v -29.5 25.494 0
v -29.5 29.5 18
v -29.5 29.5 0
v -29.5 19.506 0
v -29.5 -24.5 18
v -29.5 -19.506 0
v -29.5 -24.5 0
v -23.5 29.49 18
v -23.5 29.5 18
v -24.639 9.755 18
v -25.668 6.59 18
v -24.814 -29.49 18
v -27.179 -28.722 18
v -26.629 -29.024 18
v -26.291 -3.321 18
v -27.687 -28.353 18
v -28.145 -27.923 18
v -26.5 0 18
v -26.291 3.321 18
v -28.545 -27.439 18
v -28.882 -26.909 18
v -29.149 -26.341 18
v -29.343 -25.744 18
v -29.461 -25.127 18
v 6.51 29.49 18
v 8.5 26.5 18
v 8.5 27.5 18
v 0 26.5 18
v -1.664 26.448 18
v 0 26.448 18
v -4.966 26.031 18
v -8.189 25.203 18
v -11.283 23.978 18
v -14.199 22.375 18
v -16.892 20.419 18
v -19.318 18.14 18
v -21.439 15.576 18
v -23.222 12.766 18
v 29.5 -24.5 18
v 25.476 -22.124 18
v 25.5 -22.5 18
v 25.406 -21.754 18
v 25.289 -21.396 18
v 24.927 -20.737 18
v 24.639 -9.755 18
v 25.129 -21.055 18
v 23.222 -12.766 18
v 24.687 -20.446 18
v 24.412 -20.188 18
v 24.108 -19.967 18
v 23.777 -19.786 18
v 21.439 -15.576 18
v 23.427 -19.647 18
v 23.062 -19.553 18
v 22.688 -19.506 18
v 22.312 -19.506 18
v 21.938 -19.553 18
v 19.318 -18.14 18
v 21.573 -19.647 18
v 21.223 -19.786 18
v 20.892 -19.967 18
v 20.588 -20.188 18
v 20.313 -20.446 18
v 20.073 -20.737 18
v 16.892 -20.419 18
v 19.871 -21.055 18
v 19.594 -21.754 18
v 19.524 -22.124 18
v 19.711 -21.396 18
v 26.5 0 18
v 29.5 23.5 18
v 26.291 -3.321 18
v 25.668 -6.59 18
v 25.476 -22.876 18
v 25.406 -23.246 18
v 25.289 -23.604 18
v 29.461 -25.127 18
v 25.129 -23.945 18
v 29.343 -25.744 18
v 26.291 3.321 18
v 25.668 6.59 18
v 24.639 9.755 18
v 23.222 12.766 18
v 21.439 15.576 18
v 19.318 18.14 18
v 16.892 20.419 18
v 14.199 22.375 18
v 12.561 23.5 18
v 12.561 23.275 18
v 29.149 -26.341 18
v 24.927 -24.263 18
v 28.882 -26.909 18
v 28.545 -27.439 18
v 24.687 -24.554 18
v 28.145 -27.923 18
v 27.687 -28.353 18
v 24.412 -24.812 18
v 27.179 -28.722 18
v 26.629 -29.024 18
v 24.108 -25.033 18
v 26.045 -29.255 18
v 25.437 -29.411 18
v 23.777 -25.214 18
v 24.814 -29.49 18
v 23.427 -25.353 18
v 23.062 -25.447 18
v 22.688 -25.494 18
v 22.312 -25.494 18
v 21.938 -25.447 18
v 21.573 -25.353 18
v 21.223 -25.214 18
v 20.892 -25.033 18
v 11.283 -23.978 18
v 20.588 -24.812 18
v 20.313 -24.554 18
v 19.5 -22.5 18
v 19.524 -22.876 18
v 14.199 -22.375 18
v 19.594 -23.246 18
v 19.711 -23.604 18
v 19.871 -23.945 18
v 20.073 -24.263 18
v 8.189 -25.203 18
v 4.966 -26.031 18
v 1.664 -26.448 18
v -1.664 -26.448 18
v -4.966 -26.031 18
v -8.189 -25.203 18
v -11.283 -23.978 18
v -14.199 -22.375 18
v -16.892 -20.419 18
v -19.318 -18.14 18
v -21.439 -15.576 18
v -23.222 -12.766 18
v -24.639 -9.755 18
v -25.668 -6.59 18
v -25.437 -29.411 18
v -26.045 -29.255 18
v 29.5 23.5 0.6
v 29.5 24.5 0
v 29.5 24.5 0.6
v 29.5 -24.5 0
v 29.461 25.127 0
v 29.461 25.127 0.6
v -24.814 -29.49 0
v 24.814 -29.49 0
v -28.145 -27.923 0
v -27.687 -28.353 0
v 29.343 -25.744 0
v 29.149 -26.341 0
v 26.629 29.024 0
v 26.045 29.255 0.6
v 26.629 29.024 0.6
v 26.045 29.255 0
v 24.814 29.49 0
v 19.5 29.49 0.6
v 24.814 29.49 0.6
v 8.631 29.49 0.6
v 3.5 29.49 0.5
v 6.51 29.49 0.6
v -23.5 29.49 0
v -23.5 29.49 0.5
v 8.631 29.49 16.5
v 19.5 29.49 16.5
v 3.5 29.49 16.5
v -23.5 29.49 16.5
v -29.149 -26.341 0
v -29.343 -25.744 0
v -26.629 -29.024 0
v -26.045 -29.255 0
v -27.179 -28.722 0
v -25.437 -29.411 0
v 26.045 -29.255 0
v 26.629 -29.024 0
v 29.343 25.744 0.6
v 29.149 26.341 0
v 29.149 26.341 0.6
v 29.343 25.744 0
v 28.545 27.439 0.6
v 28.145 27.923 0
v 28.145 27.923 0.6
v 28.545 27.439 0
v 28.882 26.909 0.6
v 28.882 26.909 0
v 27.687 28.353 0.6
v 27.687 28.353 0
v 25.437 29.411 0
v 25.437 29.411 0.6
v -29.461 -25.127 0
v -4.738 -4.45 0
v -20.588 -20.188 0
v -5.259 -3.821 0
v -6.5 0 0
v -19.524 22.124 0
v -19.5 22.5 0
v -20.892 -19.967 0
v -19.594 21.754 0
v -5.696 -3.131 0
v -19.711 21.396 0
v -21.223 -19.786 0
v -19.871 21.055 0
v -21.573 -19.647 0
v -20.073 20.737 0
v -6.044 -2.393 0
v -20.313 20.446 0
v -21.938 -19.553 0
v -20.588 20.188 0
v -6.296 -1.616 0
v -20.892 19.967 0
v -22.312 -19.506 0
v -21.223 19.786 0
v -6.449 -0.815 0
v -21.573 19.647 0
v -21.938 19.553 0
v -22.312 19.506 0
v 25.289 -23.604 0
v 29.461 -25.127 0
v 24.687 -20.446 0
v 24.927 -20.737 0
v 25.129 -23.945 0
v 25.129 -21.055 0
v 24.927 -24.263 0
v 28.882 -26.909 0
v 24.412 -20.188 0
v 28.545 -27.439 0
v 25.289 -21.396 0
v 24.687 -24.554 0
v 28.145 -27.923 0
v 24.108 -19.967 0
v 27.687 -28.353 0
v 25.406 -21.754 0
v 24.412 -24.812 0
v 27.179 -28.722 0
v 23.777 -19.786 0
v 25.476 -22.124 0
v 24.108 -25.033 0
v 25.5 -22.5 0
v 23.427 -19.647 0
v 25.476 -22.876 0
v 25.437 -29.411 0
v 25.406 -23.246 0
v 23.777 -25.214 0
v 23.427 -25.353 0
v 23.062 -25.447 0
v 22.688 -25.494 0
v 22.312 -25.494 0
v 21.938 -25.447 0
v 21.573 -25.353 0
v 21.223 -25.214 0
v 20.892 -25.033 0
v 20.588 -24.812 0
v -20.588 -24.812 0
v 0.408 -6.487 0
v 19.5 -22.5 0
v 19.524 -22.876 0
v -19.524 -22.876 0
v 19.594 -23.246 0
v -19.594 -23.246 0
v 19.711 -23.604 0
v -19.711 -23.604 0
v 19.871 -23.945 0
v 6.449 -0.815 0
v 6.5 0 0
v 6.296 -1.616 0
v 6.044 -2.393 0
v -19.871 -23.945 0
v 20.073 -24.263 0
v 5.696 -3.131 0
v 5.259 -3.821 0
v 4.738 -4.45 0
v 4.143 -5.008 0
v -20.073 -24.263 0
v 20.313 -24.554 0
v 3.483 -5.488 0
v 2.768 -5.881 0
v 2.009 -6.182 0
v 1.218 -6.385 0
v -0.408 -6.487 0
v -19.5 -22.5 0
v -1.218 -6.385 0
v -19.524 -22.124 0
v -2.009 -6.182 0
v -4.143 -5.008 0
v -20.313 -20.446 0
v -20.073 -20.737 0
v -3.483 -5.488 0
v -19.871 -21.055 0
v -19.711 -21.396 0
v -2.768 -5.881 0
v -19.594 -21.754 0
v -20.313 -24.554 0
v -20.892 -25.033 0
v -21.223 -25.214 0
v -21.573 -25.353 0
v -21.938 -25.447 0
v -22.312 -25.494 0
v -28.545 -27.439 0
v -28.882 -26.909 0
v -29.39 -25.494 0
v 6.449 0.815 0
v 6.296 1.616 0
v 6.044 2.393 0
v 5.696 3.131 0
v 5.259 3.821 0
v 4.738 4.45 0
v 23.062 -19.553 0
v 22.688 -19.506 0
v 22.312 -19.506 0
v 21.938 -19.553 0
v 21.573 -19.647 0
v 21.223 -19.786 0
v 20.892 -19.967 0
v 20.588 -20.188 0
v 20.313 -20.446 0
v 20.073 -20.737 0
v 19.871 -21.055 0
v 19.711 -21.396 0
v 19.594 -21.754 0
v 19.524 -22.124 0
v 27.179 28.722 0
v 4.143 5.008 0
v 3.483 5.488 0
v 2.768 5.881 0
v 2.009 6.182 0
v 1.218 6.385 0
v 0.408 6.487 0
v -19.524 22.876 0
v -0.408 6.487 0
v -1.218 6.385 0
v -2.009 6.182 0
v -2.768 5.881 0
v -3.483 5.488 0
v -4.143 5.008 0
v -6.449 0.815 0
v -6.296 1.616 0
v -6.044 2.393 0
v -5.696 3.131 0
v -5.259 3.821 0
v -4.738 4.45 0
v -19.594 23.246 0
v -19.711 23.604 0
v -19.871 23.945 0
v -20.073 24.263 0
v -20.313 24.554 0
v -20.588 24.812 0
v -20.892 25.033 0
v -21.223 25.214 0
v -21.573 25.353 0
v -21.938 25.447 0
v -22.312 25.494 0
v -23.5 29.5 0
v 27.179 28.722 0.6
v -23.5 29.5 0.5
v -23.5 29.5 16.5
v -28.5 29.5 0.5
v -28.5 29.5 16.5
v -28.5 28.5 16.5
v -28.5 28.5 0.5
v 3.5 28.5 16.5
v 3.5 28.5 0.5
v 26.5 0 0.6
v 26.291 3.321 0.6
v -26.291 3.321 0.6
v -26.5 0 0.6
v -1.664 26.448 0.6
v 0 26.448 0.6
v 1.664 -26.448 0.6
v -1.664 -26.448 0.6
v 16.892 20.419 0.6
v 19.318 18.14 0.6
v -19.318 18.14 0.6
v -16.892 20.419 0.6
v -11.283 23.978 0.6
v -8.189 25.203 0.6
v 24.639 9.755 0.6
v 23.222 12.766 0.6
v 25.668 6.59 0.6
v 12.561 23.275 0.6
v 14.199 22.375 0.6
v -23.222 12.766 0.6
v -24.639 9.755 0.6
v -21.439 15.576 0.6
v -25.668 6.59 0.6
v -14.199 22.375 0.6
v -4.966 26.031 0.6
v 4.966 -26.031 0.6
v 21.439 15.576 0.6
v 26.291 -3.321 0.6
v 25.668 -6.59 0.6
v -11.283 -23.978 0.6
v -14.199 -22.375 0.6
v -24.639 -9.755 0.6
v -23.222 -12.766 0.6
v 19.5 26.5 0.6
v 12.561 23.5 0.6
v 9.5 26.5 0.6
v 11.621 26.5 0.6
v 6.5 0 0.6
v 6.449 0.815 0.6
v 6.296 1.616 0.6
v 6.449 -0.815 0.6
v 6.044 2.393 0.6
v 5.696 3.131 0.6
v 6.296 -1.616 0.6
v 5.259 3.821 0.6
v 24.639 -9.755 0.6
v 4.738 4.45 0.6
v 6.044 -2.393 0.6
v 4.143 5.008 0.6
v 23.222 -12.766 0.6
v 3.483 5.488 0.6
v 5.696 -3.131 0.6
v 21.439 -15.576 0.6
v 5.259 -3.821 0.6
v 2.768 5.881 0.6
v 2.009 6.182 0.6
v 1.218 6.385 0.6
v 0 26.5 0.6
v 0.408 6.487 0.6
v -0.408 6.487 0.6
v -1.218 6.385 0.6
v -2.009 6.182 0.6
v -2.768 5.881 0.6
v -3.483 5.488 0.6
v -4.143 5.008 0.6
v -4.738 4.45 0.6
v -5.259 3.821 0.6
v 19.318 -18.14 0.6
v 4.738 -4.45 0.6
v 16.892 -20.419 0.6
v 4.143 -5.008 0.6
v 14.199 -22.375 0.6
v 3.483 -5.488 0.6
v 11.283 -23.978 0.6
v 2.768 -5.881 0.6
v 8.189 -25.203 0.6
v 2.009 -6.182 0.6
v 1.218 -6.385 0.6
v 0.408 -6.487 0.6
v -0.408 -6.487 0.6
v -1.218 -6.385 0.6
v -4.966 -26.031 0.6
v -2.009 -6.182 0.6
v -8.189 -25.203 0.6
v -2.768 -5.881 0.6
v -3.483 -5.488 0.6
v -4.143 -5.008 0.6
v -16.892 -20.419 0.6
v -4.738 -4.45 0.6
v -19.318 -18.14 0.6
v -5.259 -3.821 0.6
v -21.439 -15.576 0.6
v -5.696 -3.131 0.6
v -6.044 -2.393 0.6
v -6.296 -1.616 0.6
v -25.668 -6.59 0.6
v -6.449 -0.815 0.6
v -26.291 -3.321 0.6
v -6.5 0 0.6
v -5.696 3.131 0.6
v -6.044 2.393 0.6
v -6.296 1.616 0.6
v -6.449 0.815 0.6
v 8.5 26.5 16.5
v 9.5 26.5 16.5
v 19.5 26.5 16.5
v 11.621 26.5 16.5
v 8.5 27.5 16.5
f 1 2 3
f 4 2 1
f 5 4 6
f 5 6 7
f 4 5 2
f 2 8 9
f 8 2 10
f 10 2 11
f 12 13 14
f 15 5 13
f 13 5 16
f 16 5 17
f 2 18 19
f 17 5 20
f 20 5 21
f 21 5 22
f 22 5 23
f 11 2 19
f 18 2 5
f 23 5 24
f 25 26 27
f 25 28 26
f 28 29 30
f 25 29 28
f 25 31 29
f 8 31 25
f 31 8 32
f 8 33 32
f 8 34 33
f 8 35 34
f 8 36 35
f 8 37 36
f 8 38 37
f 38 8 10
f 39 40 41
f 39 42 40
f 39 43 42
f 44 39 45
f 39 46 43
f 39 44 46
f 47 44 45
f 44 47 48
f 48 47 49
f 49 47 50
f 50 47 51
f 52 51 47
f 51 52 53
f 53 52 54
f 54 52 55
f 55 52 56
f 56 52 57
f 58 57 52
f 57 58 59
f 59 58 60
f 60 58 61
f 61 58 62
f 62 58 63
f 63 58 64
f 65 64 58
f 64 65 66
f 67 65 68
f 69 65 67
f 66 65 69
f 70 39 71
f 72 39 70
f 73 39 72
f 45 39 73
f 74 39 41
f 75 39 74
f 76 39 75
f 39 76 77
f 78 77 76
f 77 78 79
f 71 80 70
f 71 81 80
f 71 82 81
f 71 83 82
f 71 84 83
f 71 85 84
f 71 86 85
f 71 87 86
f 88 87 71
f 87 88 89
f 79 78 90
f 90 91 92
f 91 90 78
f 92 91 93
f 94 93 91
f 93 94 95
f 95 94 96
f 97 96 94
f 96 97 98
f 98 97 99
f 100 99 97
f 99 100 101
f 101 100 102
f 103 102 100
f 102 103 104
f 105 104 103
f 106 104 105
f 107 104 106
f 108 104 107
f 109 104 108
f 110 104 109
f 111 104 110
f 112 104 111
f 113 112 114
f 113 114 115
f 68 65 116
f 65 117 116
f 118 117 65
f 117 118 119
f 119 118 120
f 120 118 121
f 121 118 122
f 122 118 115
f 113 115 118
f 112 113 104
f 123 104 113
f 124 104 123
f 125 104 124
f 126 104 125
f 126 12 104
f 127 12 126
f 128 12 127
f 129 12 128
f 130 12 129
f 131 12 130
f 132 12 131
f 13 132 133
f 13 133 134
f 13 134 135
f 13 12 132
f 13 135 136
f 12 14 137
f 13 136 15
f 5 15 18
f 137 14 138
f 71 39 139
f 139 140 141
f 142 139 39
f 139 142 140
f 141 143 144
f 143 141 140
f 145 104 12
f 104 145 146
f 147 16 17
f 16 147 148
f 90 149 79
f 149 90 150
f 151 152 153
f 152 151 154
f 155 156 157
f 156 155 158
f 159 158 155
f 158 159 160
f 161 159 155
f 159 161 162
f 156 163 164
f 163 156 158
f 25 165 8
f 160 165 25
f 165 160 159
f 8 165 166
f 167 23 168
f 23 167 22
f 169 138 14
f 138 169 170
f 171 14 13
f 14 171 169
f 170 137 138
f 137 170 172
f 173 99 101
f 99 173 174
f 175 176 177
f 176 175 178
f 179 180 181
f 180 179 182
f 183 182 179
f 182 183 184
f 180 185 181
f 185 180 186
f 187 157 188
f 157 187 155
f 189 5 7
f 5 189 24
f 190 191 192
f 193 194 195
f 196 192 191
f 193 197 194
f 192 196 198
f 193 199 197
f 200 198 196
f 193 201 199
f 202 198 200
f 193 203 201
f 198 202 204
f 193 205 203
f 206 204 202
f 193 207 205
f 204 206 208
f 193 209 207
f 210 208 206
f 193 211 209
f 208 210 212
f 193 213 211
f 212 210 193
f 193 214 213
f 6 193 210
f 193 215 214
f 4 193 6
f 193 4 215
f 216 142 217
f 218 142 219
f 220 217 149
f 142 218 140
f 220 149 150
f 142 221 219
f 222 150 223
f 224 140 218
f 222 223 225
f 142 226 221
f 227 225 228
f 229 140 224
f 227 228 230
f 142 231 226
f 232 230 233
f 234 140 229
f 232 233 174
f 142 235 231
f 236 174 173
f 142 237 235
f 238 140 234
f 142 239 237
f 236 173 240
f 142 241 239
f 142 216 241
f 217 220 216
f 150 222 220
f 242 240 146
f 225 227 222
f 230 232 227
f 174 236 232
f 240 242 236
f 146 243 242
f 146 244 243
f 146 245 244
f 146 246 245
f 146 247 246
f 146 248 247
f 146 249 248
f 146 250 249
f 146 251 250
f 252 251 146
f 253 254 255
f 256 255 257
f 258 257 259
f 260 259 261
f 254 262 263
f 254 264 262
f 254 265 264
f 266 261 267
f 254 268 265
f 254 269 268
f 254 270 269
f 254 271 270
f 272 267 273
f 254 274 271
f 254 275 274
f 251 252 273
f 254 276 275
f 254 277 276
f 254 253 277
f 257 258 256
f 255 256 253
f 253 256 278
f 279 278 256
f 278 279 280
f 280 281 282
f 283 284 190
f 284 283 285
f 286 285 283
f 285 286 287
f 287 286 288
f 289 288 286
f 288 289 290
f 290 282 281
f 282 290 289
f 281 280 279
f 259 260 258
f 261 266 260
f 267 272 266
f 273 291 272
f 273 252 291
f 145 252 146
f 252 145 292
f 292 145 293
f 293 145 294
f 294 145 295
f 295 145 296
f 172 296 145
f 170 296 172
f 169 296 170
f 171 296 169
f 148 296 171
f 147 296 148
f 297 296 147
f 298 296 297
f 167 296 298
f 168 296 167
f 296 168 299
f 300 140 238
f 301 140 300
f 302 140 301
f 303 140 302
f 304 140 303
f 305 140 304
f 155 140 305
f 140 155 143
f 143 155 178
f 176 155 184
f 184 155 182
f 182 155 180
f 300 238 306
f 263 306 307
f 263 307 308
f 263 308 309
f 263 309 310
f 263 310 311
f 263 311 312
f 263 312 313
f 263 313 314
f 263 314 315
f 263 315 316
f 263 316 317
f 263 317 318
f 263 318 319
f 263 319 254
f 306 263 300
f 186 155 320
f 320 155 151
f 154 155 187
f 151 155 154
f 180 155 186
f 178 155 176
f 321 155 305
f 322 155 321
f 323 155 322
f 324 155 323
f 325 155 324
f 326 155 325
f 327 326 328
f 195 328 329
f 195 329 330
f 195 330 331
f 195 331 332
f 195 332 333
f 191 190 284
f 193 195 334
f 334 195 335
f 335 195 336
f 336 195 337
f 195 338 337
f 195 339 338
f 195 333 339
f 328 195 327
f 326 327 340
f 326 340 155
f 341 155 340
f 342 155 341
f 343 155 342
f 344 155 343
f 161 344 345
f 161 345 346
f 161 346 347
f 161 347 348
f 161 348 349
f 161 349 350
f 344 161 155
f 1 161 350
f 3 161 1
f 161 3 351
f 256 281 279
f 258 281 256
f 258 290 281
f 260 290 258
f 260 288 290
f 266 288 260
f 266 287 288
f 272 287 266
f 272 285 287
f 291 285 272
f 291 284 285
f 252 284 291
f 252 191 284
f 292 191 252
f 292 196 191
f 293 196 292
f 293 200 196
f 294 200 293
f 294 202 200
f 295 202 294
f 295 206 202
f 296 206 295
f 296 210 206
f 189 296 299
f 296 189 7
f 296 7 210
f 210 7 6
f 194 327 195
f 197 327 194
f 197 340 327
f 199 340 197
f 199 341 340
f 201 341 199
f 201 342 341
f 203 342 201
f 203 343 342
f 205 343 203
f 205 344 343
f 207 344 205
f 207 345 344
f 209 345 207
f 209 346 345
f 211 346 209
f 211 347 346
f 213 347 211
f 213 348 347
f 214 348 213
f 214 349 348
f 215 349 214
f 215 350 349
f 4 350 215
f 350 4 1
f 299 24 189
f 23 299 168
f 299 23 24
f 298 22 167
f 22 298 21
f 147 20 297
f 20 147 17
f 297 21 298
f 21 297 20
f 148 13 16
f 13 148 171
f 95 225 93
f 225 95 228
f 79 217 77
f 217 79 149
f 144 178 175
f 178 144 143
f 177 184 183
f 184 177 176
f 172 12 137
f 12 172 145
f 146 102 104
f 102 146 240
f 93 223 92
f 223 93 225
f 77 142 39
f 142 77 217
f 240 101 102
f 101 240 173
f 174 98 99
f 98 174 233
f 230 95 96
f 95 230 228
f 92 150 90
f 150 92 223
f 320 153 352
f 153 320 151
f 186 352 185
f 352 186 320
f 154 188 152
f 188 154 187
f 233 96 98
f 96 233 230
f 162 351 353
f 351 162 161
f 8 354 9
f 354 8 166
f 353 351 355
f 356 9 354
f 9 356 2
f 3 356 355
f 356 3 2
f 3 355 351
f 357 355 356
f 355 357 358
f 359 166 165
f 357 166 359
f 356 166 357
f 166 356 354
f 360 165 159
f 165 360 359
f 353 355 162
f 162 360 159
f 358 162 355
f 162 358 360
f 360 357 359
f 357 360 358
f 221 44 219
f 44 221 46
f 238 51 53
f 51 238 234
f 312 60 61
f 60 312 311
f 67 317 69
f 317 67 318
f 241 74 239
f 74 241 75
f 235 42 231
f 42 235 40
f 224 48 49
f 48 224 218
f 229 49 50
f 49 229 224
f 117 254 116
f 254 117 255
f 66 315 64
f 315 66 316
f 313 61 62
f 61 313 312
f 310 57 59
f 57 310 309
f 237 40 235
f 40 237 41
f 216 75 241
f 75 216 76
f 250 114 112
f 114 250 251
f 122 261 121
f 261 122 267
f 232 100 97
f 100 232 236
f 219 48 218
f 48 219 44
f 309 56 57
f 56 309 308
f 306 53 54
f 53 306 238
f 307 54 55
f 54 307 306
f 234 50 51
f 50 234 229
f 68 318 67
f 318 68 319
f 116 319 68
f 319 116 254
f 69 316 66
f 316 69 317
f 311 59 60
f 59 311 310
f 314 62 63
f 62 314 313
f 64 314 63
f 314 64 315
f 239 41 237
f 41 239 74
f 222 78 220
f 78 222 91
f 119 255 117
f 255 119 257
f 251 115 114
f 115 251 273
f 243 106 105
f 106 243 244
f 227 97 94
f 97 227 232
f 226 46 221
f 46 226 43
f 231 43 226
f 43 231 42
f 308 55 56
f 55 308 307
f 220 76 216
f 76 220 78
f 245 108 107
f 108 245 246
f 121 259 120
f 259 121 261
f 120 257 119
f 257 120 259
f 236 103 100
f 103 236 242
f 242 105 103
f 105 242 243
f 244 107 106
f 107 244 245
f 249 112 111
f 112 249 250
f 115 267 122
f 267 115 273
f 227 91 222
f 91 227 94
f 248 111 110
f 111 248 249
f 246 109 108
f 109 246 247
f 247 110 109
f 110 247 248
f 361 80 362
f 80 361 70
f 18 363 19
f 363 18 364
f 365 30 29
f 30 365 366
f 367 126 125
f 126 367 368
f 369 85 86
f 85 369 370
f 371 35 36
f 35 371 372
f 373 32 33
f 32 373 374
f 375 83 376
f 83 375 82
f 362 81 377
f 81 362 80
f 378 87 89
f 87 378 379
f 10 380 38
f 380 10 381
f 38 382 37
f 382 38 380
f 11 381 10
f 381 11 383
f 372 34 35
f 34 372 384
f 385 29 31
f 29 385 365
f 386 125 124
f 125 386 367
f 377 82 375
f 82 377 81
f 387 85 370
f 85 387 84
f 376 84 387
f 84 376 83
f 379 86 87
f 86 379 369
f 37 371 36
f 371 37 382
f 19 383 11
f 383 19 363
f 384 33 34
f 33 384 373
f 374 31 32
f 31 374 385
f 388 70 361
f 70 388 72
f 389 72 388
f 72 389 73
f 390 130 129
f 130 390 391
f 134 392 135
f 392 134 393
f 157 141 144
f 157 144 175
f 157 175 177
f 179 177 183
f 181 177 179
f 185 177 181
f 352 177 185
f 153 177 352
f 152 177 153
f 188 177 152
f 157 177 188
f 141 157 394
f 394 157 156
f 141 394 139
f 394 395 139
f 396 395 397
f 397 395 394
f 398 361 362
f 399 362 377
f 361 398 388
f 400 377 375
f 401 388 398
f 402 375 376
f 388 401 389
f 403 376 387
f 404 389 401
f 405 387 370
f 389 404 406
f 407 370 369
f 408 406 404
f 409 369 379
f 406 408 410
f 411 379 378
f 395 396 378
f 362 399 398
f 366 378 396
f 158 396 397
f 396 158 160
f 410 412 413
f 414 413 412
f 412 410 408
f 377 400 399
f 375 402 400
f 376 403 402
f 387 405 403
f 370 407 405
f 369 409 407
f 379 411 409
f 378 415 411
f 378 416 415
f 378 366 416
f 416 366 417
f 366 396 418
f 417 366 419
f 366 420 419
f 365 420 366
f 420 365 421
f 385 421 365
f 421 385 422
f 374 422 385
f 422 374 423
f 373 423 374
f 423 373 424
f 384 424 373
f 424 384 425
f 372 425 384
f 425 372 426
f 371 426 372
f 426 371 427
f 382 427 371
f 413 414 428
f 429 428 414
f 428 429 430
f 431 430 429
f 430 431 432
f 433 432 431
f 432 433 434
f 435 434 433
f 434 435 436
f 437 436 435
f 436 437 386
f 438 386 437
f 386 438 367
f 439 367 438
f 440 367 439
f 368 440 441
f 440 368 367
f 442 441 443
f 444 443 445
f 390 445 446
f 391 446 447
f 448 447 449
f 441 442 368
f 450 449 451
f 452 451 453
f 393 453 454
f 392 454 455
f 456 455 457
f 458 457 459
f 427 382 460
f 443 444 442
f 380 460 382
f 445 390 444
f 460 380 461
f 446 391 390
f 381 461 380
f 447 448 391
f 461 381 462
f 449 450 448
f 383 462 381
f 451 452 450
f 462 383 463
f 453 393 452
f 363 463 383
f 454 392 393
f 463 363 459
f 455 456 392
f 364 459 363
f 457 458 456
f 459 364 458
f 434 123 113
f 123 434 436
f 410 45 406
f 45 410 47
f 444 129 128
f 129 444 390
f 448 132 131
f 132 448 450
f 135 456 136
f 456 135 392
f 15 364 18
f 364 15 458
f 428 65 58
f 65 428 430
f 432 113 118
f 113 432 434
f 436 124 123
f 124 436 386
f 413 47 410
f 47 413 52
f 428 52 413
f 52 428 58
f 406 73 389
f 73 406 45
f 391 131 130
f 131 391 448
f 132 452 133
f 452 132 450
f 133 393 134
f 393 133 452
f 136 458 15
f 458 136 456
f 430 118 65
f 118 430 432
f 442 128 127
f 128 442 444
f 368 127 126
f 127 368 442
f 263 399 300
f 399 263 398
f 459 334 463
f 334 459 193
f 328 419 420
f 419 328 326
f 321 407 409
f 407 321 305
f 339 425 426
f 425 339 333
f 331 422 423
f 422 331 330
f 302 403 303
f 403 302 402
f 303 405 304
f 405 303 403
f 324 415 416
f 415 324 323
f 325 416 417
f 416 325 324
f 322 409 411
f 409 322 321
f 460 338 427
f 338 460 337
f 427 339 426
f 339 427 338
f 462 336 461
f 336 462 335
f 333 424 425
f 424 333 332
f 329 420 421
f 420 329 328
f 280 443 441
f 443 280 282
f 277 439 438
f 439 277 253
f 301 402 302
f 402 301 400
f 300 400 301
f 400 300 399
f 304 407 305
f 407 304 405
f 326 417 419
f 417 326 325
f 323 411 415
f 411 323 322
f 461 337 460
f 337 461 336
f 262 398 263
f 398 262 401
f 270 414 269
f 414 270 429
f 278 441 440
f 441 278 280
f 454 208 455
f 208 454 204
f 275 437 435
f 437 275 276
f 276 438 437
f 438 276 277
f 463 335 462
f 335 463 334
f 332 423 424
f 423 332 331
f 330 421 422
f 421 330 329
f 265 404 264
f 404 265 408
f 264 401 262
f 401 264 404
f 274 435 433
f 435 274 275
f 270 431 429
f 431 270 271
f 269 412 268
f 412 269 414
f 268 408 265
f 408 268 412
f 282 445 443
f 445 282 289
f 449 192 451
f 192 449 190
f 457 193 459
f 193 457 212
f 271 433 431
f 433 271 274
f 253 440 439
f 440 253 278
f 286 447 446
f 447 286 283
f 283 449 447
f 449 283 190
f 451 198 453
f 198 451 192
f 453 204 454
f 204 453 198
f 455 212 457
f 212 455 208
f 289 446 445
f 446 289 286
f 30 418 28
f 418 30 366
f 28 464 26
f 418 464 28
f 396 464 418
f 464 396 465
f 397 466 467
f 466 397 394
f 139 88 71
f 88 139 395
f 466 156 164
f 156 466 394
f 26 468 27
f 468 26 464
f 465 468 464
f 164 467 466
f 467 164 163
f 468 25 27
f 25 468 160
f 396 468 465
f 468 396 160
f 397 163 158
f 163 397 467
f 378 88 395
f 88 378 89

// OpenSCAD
$fn = 50;


difference() {
	union() {
		hull() {
			translate(v = [-24.5000000000, 24.5000000000, 0]) {
				cylinder(h = 18, r = 5);
			}
			translate(v = [24.5000000000, 24.5000000000, 0]) {
				cylinder(h = 18, r = 5);
			}
			translate(v = [-24.5000000000, -24.5000000000, 0]) {
				cylinder(h = 18, r = 5);
			}
			translate(v = [24.5000000000, -24.5000000000, 0]) {
				cylinder(h = 18, r = 5);
			}
		}
		translate(v = [-29.5000000000, 23.5000000000, 0]) {
			cube(size = [6, 6, 18]);
		}
	}
	union() {
		translate(v = [-30.0000000000, -22.5000000000, -250.0000000000]) {
			rotate(a = [0, 0, 0]) {
				difference() {
					union() {
						hull() {
							translate(v = [7.5000000000, 0, 0]) {
								cylinder(h = 250, r = 3.0000000000, r1 = 3.0000000000, r2 = 3.0000000000);
							}
							translate(v = [-7.5000000000, 0, 0]) {
								cylinder(h = 250, r = 3.0000000000, r1 = 3.0000000000, r2 = 3.0000000000);
							}
						}
					}
					union();
				}
			}
		}
		translate(v = [-30.0000000000, 22.5000000000, -250.0000000000]) {
			rotate(a = [0, 0, 0]) {
				difference() {
					union() {
						hull() {
							translate(v = [7.5000000000, 0, 0]) {
								cylinder(h = 250, r = 3.0000000000, r1 = 3.0000000000, r2 = 3.0000000000);
							}
							translate(v = [-7.5000000000, 0, 0]) {
								cylinder(h = 250, r = 3.0000000000, r1 = 3.0000000000, r2 = 3.0000000000);
							}
						}
					}
					union();
				}
			}
		}
		translate(v = [-28.5000000000, 28.5000000000, 0.5000000000]) {
			cube(size = [32, 1, 16]);
		}
		translate(v = [22.5000000000, -22.5000000000, -50.0000000000]) {
			cylinder(h = 100, r = 3.0000000000);
		}
		translate(v = [0, 0, 0.6000000000]) {
			cylinder(h = 20.4000000000, r = 26.5000000000);
		}
		translate(v = [0, 0, -9.0000000000]) {
			cylinder(h = 18, r = 6.5000000000);
		}
		translate(v = [0.0000000000, 23.5000000000, 0.6000000000]) {
			cube(size = [29.5000000000, 3, 20.4000000000]);
		}
		translate(v = [19.5000000000, 23.5000000000, 0.6000000000]) {
			cube(size = [10, 6, 20.4000000000]);
		}
		translate(v = [8.5000000000, 23.5000000000, 16.5000000000]) {
			cube(size = [21, 6, 1.5000000000]);
		}
		translate(v = [5.7500000000, 30.2500000000, 0.6000000000]) {
			rotate(a = [0, 0, -45]) {
				cube(size = [7.5000000000, 1.5000000000, 20.4000000000]);
			}
		}
		translate(v = [5.0610000000, 21.5000000000, 0.6000000000]) {
			cube(size = [7.5000000000, 2, 17.4000000000]);
		}
	}
}
